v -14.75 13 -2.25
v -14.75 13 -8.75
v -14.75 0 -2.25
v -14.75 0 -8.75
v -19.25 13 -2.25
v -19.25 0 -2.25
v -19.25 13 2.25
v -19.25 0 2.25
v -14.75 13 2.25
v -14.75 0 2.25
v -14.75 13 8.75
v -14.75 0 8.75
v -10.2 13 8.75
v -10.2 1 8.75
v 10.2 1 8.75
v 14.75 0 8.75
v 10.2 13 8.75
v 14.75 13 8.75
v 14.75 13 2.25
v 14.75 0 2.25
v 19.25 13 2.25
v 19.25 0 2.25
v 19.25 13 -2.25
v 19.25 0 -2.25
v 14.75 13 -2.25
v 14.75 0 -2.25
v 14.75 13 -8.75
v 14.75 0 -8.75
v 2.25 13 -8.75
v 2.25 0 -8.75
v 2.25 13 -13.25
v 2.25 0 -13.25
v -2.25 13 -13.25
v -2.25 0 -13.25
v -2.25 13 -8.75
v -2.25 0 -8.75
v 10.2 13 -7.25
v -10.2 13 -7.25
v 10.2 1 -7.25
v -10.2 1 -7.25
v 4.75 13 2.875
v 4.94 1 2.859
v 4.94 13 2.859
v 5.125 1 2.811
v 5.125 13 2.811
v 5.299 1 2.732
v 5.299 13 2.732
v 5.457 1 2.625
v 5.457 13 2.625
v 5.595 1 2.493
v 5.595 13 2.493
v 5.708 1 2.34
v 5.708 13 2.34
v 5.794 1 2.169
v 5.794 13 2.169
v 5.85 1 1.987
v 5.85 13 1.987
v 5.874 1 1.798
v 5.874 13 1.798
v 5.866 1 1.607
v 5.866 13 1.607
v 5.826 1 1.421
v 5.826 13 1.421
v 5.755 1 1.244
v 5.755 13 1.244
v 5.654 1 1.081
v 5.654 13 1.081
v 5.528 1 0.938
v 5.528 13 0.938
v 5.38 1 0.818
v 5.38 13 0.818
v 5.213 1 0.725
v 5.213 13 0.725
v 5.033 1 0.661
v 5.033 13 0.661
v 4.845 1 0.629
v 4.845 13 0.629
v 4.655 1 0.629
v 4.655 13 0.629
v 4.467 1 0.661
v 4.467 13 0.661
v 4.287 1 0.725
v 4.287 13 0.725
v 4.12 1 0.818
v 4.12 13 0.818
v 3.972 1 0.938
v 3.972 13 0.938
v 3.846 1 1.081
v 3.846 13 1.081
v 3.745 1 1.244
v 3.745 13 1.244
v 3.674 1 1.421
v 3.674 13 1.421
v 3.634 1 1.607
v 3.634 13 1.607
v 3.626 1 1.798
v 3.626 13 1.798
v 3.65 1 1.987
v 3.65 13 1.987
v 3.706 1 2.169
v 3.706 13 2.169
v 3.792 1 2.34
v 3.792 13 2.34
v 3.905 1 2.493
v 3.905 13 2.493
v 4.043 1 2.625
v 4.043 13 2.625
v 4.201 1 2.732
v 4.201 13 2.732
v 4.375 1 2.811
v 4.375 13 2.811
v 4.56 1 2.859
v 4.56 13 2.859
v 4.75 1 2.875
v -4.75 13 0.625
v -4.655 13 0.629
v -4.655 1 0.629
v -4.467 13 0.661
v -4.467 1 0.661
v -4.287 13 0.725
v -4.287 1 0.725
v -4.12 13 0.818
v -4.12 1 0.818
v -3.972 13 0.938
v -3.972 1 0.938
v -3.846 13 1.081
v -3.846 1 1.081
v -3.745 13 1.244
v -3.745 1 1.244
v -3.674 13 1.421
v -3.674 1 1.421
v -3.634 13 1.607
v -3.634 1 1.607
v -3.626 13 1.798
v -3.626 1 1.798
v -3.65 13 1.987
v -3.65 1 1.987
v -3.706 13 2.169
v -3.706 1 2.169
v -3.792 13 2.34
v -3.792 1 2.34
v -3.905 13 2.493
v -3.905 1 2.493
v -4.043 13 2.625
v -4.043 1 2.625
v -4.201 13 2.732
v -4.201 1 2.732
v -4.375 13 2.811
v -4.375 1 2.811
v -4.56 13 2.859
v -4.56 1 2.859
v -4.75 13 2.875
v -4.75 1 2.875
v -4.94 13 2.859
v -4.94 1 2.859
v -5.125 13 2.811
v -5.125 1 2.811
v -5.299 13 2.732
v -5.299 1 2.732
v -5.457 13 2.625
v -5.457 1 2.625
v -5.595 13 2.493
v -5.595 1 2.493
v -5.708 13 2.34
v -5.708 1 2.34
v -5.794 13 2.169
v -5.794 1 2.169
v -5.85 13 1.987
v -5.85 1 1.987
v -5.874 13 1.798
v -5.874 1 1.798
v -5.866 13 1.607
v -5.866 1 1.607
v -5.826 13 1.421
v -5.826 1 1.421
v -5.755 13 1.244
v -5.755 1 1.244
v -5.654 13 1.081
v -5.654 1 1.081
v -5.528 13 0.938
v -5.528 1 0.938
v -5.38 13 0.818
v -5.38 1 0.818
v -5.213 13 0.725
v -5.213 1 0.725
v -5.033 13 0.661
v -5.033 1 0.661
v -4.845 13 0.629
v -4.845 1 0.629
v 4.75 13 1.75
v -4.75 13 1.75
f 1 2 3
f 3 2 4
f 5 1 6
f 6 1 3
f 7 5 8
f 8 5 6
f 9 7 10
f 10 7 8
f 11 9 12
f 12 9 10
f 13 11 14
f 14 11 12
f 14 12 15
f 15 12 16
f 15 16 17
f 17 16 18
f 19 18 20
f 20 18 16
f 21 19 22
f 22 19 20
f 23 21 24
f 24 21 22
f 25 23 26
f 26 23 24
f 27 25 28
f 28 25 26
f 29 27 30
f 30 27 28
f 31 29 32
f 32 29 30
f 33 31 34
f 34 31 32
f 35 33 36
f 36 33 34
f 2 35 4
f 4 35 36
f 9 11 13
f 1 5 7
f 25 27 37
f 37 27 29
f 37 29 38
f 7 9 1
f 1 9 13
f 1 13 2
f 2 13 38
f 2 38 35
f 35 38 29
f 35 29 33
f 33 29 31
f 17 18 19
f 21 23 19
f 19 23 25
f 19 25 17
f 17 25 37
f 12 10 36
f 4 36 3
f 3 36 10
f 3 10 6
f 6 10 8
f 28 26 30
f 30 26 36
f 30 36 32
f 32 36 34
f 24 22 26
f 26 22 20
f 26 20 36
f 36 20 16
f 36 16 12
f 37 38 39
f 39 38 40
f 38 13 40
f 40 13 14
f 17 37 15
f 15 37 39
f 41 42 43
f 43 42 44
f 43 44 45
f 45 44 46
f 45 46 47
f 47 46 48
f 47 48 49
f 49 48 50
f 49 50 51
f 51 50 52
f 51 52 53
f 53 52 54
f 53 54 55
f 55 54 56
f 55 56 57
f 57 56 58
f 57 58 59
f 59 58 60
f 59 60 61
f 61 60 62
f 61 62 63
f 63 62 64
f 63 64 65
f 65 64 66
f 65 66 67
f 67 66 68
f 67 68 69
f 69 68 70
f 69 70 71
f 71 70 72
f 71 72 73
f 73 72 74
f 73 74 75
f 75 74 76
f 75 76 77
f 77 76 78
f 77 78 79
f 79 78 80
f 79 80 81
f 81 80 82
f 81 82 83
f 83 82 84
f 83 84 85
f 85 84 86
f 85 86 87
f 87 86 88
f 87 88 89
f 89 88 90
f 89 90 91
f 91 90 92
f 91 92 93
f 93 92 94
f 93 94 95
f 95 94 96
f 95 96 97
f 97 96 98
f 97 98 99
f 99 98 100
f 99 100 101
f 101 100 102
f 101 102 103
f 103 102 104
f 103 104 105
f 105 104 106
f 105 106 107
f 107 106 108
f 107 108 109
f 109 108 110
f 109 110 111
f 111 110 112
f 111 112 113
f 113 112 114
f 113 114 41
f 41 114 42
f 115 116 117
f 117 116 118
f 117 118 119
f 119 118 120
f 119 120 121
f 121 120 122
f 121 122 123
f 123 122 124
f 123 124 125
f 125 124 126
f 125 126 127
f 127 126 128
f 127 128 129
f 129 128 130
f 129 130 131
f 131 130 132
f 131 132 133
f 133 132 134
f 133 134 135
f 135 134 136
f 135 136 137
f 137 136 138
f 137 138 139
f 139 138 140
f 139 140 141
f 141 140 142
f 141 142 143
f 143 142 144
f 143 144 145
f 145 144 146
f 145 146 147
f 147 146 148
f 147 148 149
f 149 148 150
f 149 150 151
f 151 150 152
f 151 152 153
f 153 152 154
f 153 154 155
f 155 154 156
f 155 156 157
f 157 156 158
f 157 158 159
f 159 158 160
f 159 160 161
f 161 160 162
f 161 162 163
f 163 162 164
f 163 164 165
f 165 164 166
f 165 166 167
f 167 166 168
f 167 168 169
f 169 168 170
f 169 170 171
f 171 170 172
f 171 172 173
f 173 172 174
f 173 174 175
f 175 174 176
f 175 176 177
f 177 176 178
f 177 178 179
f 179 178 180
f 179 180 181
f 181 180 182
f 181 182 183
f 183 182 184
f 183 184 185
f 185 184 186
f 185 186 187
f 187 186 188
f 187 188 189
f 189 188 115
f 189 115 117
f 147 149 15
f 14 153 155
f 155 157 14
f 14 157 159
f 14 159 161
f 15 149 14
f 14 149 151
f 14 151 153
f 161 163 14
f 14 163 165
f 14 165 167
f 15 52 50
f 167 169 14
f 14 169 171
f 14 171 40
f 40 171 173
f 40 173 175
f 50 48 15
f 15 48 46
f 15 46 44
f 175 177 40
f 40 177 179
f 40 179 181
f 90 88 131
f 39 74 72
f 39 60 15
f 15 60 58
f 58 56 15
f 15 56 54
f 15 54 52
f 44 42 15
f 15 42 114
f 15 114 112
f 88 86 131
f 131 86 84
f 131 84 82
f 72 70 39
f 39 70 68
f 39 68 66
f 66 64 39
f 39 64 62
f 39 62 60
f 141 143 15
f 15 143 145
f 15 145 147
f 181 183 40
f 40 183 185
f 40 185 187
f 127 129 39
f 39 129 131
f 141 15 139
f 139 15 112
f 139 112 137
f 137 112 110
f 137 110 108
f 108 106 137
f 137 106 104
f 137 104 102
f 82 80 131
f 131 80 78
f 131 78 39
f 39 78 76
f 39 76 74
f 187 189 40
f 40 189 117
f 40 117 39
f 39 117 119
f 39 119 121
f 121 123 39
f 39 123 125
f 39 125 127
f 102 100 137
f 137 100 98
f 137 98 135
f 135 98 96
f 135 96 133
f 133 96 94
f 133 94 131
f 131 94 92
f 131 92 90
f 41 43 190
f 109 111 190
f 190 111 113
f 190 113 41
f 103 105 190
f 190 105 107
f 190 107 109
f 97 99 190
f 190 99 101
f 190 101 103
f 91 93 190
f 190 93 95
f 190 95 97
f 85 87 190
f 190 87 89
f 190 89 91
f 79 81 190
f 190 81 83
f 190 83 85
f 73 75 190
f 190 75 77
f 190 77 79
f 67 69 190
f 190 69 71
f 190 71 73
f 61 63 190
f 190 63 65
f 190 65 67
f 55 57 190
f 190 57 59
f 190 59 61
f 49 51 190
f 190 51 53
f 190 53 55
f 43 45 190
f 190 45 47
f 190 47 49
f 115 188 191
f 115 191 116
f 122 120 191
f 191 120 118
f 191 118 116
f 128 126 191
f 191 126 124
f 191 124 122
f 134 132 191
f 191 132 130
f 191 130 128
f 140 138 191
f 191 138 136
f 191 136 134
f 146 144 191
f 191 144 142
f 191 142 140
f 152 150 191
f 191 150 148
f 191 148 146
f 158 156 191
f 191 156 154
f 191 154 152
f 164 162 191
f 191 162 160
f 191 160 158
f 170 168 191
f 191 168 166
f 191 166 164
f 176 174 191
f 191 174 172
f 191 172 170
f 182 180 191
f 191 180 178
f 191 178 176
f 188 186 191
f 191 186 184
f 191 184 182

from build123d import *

# Parameters (mm, degrees)
SALIENTE_EXTRUIR1_DEPTH = 13
CROQUIS4_W              = 20.4
CROQUIS4_H              = 16
CROQUIS4_R              = 1.125
CORTAR_EXTRUIR1_DEPTH   = 12


with BuildPart() as part:
    # Croquis2 → Saliente-Extruir1 (new body)
    with BuildSketch(Plane(origin=(0, 0, 0), x_dir=(1, 0, 0), z_dir=(0, 1, 0))):
        Polygon((14.75, -8.75), (-14.75, -8.75), (-14.75, -2.25), (-19.25, -2.25), (-19.25, 2.25), (-14.75, 2.25), (-14.75, 8.75), (-2.25, 8.75), (-2.25, 13.25), (2.25, 13.25), (2.25, 8.75), (14.75, 8.75), (14.75, 2.25), (19.25, 2.25), (19.25, -2.25), (14.75, -2.25), align=None)
    extrude(amount=SALIENTE_EXTRUIR1_DEPTH)

    # Croquis4 → Cortar-Extruir1 (cut)
    with BuildSketch(Plane(origin=(0, 13, 0), x_dir=(1, 0, 0), z_dir=(0, 1, 0))):
        with Locations((0, -0.75)):
            Rectangle(CROQUIS4_W, CROQUIS4_H)
        with Locations(Location((4.75, -1.75, 0), (0, 0, 270))):
            Circle(CROQUIS4_R, mode=Mode.SUBTRACT)
        with Locations(Location((-4.75, -1.75, 0), (0, 0, 270))):
            Circle(CROQUIS4_R, mode=Mode.SUBTRACT)
    extrude(amount=-CORTAR_EXTRUIR1_DEPTH, mode=Mode.SUBTRACT)


solid = part.part
